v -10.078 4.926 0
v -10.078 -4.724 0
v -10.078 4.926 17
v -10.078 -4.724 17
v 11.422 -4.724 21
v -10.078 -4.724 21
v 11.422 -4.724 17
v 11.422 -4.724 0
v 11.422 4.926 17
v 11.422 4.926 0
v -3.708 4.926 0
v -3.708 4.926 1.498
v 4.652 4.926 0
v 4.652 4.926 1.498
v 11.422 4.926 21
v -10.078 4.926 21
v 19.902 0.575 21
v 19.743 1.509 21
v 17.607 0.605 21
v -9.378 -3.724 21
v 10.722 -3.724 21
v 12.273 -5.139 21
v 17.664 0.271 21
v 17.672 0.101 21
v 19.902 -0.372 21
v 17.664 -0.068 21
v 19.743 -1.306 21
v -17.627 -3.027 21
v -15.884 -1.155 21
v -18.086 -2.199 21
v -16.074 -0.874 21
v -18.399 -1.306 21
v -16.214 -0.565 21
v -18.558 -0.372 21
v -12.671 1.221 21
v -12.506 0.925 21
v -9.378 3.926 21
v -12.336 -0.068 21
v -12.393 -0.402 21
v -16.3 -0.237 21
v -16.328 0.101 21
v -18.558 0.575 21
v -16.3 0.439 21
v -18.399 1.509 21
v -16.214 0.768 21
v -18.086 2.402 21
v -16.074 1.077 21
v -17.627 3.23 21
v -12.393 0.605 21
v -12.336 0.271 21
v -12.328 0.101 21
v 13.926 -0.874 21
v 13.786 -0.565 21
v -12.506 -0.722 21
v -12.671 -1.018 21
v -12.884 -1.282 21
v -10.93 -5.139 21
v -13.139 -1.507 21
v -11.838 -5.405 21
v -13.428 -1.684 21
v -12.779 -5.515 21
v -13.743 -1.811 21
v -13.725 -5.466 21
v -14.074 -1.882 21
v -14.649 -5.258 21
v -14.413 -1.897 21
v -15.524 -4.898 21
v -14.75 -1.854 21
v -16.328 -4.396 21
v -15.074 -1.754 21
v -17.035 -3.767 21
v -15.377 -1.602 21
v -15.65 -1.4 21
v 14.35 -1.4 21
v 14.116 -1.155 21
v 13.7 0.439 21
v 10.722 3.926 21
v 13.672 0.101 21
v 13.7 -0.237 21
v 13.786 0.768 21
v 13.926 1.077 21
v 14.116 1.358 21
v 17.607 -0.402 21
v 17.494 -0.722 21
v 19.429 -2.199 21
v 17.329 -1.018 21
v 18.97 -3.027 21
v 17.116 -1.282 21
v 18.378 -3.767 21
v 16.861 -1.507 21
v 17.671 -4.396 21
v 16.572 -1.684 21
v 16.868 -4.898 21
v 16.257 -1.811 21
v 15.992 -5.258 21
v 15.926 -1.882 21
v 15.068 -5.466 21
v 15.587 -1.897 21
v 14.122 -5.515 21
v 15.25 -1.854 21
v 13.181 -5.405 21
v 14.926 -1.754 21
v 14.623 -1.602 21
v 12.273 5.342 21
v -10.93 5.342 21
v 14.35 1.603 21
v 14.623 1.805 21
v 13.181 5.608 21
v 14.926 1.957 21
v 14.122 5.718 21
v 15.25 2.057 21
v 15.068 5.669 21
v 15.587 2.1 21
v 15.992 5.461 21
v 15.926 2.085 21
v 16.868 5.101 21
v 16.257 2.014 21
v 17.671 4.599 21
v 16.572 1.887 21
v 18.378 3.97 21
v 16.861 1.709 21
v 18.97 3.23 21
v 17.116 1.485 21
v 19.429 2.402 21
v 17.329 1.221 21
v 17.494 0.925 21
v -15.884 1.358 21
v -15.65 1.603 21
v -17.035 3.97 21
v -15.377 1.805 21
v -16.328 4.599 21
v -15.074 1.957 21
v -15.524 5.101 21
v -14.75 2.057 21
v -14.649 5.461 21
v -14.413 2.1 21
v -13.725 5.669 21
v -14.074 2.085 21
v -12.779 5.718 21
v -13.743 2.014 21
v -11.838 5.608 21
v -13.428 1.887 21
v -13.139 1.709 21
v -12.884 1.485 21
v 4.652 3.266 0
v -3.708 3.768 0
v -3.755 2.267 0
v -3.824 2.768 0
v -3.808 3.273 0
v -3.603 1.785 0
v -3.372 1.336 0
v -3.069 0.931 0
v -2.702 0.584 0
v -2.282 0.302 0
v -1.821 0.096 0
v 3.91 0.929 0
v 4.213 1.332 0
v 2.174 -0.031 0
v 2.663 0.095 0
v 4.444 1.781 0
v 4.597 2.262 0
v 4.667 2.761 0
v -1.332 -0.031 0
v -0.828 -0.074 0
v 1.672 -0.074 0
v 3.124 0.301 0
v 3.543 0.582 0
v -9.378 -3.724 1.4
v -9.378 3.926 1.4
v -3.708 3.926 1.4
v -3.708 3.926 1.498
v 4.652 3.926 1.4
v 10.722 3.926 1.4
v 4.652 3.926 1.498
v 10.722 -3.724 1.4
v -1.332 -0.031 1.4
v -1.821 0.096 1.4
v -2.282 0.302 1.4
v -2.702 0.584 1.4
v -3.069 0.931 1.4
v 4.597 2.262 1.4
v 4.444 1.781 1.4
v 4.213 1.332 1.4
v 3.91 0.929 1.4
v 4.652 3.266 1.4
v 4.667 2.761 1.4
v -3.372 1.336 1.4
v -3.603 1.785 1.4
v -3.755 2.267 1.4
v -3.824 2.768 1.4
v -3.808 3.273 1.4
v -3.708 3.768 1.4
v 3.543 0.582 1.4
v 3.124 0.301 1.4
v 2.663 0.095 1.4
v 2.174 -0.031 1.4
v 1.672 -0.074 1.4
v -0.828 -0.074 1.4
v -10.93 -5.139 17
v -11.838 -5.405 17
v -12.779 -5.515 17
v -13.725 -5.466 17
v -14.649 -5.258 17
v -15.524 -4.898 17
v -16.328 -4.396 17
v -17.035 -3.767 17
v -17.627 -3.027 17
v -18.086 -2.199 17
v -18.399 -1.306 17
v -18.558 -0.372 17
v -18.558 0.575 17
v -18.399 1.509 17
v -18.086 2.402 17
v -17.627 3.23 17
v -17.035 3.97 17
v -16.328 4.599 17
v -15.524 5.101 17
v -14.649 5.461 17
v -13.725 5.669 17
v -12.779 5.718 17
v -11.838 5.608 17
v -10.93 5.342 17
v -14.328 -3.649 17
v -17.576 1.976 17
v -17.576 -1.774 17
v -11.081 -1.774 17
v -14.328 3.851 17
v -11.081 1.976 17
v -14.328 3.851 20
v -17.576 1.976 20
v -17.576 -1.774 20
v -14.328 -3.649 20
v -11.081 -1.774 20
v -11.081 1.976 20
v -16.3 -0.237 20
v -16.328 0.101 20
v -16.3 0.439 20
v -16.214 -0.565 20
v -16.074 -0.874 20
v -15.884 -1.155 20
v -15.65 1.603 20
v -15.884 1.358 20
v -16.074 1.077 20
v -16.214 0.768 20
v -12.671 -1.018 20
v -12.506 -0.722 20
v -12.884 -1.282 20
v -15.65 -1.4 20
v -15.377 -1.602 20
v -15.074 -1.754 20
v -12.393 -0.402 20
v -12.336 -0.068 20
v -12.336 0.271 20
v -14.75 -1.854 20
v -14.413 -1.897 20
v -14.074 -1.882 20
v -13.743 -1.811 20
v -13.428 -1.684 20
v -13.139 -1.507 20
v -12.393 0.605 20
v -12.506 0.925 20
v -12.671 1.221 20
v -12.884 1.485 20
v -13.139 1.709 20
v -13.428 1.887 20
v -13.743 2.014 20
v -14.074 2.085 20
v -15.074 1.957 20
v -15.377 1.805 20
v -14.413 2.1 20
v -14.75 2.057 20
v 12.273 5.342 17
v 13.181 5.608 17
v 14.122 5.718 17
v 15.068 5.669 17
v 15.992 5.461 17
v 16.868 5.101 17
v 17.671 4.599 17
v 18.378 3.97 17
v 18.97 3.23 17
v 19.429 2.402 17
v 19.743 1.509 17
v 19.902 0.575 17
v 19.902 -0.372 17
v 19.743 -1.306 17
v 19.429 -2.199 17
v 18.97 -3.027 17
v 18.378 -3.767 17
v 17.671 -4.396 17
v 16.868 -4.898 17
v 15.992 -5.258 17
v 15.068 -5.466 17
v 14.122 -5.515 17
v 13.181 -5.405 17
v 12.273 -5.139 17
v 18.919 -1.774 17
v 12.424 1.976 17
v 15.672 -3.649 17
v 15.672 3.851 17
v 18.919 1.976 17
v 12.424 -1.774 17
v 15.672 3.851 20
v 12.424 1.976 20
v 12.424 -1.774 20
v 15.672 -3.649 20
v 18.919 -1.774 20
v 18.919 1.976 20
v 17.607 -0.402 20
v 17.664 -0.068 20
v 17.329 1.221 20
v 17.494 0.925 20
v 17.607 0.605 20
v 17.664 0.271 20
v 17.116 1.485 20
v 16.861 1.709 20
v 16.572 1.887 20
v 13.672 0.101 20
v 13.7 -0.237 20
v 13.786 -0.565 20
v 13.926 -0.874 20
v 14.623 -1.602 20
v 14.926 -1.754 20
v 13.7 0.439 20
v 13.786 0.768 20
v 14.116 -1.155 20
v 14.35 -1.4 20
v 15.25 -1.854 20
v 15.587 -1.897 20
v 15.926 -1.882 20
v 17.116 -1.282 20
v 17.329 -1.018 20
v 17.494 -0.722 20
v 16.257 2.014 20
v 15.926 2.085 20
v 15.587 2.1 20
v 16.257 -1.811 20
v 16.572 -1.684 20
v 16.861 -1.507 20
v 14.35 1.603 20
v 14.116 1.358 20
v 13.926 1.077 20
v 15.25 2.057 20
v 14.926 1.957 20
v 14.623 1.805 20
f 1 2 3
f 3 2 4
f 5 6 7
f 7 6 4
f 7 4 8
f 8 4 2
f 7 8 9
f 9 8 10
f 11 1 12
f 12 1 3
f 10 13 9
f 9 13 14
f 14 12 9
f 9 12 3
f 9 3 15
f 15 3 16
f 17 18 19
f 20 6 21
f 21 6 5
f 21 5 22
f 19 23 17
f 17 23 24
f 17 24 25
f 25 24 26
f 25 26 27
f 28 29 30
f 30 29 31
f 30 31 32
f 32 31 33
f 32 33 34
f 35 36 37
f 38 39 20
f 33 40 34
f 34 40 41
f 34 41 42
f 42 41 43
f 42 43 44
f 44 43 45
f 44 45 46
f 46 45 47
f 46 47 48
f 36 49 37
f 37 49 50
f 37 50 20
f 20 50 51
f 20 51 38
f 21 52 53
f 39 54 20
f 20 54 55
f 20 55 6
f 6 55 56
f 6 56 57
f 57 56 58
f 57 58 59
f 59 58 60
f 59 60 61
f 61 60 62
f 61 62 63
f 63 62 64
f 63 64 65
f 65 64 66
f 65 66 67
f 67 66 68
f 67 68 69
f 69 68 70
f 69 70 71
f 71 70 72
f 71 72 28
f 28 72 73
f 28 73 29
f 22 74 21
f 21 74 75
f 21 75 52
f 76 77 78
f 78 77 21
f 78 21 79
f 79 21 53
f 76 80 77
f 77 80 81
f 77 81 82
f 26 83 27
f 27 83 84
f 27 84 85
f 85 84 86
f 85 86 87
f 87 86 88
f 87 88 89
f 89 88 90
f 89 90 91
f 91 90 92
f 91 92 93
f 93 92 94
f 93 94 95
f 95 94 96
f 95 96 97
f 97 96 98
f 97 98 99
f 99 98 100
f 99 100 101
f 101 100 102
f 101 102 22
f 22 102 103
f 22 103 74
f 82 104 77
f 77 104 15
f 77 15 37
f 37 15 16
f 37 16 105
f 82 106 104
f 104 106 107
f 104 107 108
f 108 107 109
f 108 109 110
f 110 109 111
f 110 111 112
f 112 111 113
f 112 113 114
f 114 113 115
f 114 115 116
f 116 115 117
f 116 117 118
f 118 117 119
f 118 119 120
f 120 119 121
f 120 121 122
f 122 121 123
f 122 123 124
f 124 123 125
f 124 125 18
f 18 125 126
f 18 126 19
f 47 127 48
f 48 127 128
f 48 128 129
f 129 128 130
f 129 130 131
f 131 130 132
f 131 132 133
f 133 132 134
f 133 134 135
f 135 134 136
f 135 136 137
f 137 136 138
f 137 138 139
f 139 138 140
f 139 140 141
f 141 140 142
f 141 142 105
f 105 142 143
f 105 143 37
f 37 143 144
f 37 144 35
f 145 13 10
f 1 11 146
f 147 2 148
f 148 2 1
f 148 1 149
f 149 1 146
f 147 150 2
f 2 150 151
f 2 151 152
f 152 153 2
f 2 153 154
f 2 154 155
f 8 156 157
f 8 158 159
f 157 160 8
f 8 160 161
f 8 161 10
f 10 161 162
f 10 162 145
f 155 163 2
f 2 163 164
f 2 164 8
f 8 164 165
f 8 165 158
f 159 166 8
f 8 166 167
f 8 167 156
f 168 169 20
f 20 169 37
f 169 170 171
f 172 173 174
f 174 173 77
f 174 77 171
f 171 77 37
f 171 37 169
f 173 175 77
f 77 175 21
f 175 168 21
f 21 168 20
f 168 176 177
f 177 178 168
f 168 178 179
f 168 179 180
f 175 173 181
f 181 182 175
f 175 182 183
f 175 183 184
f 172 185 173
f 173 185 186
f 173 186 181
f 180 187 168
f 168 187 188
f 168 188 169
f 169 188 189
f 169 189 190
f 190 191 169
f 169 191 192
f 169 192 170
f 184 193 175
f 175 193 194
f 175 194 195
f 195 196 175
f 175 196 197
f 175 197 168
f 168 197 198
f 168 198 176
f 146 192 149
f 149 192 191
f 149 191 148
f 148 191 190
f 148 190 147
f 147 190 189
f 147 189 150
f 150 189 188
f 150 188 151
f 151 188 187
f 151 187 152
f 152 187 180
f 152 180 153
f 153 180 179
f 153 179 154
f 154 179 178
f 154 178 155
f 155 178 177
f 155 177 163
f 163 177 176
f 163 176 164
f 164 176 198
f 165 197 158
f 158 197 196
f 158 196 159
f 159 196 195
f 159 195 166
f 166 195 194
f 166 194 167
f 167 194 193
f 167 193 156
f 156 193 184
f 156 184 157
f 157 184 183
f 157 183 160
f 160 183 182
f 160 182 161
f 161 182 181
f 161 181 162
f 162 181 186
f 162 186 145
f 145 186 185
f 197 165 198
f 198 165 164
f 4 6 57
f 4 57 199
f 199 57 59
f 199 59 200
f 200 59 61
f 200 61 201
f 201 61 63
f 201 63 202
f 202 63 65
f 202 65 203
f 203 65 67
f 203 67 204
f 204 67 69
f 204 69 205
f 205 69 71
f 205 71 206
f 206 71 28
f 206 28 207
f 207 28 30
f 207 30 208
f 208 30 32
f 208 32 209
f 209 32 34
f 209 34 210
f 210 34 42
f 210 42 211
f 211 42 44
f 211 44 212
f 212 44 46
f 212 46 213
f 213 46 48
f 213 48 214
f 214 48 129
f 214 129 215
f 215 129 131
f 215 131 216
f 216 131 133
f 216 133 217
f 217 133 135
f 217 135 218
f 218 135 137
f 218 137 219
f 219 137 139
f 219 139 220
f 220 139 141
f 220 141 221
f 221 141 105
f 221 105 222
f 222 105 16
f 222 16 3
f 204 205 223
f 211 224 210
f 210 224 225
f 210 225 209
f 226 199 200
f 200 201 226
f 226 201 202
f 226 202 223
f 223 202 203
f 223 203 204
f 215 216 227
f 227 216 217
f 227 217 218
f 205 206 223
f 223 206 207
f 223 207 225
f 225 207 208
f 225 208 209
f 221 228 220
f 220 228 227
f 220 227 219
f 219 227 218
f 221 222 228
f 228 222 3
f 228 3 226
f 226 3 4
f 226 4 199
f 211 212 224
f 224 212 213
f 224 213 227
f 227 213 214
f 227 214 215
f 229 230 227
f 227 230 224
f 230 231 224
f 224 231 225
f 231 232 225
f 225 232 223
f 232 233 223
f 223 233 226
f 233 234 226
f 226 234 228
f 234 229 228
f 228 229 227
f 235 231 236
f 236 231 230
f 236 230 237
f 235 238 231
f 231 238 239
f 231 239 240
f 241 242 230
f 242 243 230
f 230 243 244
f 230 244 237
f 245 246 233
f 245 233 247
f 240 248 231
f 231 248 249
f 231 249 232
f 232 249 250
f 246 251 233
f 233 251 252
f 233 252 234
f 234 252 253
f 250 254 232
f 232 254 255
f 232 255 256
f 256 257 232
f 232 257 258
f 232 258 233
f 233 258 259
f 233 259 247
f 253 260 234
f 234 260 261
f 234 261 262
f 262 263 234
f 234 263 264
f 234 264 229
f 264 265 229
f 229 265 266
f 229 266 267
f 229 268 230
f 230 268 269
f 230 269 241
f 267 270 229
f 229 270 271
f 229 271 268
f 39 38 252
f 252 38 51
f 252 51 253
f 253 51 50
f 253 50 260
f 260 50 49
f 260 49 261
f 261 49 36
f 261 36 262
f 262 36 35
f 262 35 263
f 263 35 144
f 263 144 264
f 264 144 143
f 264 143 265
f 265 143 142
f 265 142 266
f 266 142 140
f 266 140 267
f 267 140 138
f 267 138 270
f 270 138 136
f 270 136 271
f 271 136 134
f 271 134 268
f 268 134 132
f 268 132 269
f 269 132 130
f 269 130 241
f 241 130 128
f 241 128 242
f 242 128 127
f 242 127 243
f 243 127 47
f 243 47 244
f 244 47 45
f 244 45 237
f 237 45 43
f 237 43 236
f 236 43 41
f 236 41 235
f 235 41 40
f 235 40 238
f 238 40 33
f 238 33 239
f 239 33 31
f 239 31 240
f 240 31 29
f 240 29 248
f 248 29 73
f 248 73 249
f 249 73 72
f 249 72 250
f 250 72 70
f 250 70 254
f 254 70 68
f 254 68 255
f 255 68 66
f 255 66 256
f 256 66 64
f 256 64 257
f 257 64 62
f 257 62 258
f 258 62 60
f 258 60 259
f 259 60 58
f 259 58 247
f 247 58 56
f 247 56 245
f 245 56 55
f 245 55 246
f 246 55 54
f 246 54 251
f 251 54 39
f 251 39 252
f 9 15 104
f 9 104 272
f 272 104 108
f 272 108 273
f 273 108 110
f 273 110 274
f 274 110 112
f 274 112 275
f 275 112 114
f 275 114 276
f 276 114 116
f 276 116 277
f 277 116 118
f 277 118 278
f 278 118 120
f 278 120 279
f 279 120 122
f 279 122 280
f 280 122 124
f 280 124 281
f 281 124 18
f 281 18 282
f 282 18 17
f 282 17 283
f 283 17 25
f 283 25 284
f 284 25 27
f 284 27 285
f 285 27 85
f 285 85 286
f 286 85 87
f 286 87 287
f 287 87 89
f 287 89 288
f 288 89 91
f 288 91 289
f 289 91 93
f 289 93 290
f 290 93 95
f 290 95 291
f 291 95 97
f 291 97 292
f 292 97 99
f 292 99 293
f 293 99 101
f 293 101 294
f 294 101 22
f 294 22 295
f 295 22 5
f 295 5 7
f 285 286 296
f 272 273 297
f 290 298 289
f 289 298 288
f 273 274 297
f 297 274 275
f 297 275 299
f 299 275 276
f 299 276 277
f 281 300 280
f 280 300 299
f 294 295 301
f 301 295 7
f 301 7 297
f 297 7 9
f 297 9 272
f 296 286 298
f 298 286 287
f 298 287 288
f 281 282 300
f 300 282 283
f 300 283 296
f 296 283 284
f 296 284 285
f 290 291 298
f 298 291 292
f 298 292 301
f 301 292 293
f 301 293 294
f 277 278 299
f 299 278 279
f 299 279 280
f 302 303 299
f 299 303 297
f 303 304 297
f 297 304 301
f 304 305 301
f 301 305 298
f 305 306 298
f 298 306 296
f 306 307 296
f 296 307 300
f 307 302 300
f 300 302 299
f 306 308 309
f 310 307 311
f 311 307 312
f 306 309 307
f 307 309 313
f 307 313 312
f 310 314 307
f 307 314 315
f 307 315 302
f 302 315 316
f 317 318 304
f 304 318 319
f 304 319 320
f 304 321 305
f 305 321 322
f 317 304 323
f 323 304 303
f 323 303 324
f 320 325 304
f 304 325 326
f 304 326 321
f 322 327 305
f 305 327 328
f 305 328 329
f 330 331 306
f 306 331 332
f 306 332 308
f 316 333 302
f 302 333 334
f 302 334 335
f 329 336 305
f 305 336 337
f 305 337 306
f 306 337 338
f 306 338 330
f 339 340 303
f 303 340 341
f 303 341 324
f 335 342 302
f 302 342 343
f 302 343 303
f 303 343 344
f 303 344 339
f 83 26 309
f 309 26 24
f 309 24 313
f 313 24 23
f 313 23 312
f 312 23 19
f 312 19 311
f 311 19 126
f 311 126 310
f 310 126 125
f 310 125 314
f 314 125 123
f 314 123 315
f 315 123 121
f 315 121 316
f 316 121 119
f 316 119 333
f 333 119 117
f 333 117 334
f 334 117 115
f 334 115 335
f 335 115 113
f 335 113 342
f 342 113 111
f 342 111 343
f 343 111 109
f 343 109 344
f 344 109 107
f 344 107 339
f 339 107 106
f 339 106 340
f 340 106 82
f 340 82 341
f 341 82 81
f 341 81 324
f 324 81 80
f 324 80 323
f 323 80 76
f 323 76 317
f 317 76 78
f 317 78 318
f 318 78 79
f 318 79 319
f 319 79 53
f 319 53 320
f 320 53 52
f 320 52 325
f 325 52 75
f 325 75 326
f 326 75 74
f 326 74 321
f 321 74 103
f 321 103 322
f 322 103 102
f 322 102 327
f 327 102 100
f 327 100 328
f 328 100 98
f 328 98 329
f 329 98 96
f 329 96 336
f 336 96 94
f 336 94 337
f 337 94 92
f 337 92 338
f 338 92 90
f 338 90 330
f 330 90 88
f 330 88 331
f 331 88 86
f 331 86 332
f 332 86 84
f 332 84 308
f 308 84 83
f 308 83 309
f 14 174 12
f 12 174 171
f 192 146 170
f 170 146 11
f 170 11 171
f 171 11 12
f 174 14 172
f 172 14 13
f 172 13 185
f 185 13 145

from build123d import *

# Parameters (mm, degrees)
SKETCH1_W           = 21.5
SKETCH1_H           = 9.65
BOSS_EXTRUDE1_DEPTH = 21
SKETCH3_W           = 20.1
SKETCH3_H           = 7.65
CUT_EXTRUDE1_DEPTH  = 19.6
CUT_EXTRUDE2_DEPTH  = 19.6
BOSS_EXTRUDE2_DEPTH = 4
CUT_EXTRUDE3_DEPTH  = 3
SKETCH22_R          = 2
CUT_EXTRUDE4_DEPTH  = 3
BOSS_EXTRUDE3_DEPTH = 4
CUT_EXTRUDE5_DEPTH  = 3
SKETCH25_R          = 2
CUT_EXTRUDE6_DEPTH  = 3
SKETCH26_W          = 8.360194132
SKETCH26_H          = 1.498091199
CUT_EXTRUDE7_DEPTH  = 2


with BuildPart() as part:
    # Sketch1 → Boss-Extrude1 (new body)
    with BuildSketch(Plane.XY):
        with Locations((0.67161215, 0.10146028)):
            Rectangle(SKETCH1_W, SKETCH1_H)
    extrude(amount=BOSS_EXTRUDE1_DEPTH)

    # Sketch3 → Cut-Extrude1 (cut)
    with BuildSketch(Plane.XY.offset(21)):
        with Locations((0.67161215, 0.10146028)):
            Rectangle(SKETCH3_W, SKETCH3_H)
    extrude(amount=-CUT_EXTRUDE1_DEPTH, mode=Mode.SUBTRACT)

    # Sketch5 → Cut-Extrude2 (cut)
    with BuildSketch(Plane.XY.offset(1.4)):
        with BuildLine():
            Line((-0.82838785, 5.92646028), (1.67161215, 5.92646028))
            ThreePointArc((1.67161215, 5.92646028), (4.67161215, 2.92646028), (1.67161215, -0.07353972))
            Line((1.67161215, -0.07353972), (-0.82838785, -0.07353972))
            ThreePointArc((-0.82838785, -0.07353972), (-3.82838785, 2.92646028), (-0.82838785, 5.92646028))
        make_face()
    extrude(amount=-CUT_EXTRUDE2_DEPTH, mode=Mode.SUBTRACT)

    # Sketch20 → Boss-Extrude2 (add)
    with BuildSketch(Plane.XY.offset(21)):
        with BuildLine():
            Line((-10.07838785, -4.72353972), (-10.07838785, 4.92646028))
            ThreePointArc((-10.07838785, 4.92646028), (-18.57838785, 0.10146028), (-10.07838785, -4.72353972))
        make_face()
    extrude(amount=-BOSS_EXTRUDE2_DEPTH)

    # Sketch21 → Cut-Extrude3 (cut)
    with BuildSketch(Plane(origin=(0, 0, 17), x_dir=(-1, 0, 0), z_dir=(0, 0, -1))):
        Polygon((14.32838785, 3.85146028), (11.080792586, 1.97646028), (11.080792586, -1.77353972), (14.32838785, -3.64853972), (17.575983115, -1.77353972), (17.575983115, 1.97646028), align=None)
    extrude(amount=-CUT_EXTRUDE3_DEPTH, mode=Mode.SUBTRACT)

    # Sketch22 → Cut-Extrude4 (cut)
    with BuildSketch(Plane(origin=(0, 0, 20), x_dir=(-1, 0, 0), z_dir=(0, 0, -1))):
        with Locations((14.32838785, 0.10146028)):
            Circle(SKETCH22_R)
    extrude(amount=-CUT_EXTRUDE4_DEPTH, mode=Mode.SUBTRACT)

    # Sketch23 → Boss-Extrude3 (add)
    with BuildSketch(Plane.XY.offset(21)):
        with BuildLine():
            Line((11.42161215, 4.92646028), (11.42161215, -4.72353972))
            ThreePointArc((11.42161215, -4.72353972), (19.92161215, 0.10146028), (11.42161215, 4.92646028))
        make_face()
    extrude(amount=-BOSS_EXTRUDE3_DEPTH)

    # Sketch24 → Cut-Extrude5 (cut)
    with BuildSketch(Plane(origin=(0, 0, 17), x_dir=(-1, 0, 0), z_dir=(0, 0, -1))):
        Polygon((-15.67161215, 3.85146028), (-18.919207414, 1.97646028), (-18.919207414, -1.77353972), (-15.67161215, -3.64853972), (-12.424016885, -1.77353972), (-12.424016885, 1.97646028), align=None)
    extrude(amount=-CUT_EXTRUDE5_DEPTH, mode=Mode.SUBTRACT)

    # Sketch25 → Cut-Extrude6 (cut)
    with BuildSketch(Plane(origin=(0, 0, 20), x_dir=(-1, 0, 0), z_dir=(0, 0, -1))):
        with Locations((-15.67161215, 0.10146028)):
            Circle(SKETCH25_R)
    extrude(amount=-CUT_EXTRUDE6_DEPTH, mode=Mode.SUBTRACT)

    # Sketch26 → Cut-Extrude7 (cut)
    with BuildSketch(Plane(origin=(0, 4.92646028, 0), x_dir=(1, 0, 0), z_dir=(0, 1, 0))):
        with Locations((0.472258252, -0.7490456)):
            Rectangle(SKETCH26_W, SKETCH26_H)
    extrude(amount=-CUT_EXTRUDE7_DEPTH, mode=Mode.SUBTRACT)


solid = part.part
